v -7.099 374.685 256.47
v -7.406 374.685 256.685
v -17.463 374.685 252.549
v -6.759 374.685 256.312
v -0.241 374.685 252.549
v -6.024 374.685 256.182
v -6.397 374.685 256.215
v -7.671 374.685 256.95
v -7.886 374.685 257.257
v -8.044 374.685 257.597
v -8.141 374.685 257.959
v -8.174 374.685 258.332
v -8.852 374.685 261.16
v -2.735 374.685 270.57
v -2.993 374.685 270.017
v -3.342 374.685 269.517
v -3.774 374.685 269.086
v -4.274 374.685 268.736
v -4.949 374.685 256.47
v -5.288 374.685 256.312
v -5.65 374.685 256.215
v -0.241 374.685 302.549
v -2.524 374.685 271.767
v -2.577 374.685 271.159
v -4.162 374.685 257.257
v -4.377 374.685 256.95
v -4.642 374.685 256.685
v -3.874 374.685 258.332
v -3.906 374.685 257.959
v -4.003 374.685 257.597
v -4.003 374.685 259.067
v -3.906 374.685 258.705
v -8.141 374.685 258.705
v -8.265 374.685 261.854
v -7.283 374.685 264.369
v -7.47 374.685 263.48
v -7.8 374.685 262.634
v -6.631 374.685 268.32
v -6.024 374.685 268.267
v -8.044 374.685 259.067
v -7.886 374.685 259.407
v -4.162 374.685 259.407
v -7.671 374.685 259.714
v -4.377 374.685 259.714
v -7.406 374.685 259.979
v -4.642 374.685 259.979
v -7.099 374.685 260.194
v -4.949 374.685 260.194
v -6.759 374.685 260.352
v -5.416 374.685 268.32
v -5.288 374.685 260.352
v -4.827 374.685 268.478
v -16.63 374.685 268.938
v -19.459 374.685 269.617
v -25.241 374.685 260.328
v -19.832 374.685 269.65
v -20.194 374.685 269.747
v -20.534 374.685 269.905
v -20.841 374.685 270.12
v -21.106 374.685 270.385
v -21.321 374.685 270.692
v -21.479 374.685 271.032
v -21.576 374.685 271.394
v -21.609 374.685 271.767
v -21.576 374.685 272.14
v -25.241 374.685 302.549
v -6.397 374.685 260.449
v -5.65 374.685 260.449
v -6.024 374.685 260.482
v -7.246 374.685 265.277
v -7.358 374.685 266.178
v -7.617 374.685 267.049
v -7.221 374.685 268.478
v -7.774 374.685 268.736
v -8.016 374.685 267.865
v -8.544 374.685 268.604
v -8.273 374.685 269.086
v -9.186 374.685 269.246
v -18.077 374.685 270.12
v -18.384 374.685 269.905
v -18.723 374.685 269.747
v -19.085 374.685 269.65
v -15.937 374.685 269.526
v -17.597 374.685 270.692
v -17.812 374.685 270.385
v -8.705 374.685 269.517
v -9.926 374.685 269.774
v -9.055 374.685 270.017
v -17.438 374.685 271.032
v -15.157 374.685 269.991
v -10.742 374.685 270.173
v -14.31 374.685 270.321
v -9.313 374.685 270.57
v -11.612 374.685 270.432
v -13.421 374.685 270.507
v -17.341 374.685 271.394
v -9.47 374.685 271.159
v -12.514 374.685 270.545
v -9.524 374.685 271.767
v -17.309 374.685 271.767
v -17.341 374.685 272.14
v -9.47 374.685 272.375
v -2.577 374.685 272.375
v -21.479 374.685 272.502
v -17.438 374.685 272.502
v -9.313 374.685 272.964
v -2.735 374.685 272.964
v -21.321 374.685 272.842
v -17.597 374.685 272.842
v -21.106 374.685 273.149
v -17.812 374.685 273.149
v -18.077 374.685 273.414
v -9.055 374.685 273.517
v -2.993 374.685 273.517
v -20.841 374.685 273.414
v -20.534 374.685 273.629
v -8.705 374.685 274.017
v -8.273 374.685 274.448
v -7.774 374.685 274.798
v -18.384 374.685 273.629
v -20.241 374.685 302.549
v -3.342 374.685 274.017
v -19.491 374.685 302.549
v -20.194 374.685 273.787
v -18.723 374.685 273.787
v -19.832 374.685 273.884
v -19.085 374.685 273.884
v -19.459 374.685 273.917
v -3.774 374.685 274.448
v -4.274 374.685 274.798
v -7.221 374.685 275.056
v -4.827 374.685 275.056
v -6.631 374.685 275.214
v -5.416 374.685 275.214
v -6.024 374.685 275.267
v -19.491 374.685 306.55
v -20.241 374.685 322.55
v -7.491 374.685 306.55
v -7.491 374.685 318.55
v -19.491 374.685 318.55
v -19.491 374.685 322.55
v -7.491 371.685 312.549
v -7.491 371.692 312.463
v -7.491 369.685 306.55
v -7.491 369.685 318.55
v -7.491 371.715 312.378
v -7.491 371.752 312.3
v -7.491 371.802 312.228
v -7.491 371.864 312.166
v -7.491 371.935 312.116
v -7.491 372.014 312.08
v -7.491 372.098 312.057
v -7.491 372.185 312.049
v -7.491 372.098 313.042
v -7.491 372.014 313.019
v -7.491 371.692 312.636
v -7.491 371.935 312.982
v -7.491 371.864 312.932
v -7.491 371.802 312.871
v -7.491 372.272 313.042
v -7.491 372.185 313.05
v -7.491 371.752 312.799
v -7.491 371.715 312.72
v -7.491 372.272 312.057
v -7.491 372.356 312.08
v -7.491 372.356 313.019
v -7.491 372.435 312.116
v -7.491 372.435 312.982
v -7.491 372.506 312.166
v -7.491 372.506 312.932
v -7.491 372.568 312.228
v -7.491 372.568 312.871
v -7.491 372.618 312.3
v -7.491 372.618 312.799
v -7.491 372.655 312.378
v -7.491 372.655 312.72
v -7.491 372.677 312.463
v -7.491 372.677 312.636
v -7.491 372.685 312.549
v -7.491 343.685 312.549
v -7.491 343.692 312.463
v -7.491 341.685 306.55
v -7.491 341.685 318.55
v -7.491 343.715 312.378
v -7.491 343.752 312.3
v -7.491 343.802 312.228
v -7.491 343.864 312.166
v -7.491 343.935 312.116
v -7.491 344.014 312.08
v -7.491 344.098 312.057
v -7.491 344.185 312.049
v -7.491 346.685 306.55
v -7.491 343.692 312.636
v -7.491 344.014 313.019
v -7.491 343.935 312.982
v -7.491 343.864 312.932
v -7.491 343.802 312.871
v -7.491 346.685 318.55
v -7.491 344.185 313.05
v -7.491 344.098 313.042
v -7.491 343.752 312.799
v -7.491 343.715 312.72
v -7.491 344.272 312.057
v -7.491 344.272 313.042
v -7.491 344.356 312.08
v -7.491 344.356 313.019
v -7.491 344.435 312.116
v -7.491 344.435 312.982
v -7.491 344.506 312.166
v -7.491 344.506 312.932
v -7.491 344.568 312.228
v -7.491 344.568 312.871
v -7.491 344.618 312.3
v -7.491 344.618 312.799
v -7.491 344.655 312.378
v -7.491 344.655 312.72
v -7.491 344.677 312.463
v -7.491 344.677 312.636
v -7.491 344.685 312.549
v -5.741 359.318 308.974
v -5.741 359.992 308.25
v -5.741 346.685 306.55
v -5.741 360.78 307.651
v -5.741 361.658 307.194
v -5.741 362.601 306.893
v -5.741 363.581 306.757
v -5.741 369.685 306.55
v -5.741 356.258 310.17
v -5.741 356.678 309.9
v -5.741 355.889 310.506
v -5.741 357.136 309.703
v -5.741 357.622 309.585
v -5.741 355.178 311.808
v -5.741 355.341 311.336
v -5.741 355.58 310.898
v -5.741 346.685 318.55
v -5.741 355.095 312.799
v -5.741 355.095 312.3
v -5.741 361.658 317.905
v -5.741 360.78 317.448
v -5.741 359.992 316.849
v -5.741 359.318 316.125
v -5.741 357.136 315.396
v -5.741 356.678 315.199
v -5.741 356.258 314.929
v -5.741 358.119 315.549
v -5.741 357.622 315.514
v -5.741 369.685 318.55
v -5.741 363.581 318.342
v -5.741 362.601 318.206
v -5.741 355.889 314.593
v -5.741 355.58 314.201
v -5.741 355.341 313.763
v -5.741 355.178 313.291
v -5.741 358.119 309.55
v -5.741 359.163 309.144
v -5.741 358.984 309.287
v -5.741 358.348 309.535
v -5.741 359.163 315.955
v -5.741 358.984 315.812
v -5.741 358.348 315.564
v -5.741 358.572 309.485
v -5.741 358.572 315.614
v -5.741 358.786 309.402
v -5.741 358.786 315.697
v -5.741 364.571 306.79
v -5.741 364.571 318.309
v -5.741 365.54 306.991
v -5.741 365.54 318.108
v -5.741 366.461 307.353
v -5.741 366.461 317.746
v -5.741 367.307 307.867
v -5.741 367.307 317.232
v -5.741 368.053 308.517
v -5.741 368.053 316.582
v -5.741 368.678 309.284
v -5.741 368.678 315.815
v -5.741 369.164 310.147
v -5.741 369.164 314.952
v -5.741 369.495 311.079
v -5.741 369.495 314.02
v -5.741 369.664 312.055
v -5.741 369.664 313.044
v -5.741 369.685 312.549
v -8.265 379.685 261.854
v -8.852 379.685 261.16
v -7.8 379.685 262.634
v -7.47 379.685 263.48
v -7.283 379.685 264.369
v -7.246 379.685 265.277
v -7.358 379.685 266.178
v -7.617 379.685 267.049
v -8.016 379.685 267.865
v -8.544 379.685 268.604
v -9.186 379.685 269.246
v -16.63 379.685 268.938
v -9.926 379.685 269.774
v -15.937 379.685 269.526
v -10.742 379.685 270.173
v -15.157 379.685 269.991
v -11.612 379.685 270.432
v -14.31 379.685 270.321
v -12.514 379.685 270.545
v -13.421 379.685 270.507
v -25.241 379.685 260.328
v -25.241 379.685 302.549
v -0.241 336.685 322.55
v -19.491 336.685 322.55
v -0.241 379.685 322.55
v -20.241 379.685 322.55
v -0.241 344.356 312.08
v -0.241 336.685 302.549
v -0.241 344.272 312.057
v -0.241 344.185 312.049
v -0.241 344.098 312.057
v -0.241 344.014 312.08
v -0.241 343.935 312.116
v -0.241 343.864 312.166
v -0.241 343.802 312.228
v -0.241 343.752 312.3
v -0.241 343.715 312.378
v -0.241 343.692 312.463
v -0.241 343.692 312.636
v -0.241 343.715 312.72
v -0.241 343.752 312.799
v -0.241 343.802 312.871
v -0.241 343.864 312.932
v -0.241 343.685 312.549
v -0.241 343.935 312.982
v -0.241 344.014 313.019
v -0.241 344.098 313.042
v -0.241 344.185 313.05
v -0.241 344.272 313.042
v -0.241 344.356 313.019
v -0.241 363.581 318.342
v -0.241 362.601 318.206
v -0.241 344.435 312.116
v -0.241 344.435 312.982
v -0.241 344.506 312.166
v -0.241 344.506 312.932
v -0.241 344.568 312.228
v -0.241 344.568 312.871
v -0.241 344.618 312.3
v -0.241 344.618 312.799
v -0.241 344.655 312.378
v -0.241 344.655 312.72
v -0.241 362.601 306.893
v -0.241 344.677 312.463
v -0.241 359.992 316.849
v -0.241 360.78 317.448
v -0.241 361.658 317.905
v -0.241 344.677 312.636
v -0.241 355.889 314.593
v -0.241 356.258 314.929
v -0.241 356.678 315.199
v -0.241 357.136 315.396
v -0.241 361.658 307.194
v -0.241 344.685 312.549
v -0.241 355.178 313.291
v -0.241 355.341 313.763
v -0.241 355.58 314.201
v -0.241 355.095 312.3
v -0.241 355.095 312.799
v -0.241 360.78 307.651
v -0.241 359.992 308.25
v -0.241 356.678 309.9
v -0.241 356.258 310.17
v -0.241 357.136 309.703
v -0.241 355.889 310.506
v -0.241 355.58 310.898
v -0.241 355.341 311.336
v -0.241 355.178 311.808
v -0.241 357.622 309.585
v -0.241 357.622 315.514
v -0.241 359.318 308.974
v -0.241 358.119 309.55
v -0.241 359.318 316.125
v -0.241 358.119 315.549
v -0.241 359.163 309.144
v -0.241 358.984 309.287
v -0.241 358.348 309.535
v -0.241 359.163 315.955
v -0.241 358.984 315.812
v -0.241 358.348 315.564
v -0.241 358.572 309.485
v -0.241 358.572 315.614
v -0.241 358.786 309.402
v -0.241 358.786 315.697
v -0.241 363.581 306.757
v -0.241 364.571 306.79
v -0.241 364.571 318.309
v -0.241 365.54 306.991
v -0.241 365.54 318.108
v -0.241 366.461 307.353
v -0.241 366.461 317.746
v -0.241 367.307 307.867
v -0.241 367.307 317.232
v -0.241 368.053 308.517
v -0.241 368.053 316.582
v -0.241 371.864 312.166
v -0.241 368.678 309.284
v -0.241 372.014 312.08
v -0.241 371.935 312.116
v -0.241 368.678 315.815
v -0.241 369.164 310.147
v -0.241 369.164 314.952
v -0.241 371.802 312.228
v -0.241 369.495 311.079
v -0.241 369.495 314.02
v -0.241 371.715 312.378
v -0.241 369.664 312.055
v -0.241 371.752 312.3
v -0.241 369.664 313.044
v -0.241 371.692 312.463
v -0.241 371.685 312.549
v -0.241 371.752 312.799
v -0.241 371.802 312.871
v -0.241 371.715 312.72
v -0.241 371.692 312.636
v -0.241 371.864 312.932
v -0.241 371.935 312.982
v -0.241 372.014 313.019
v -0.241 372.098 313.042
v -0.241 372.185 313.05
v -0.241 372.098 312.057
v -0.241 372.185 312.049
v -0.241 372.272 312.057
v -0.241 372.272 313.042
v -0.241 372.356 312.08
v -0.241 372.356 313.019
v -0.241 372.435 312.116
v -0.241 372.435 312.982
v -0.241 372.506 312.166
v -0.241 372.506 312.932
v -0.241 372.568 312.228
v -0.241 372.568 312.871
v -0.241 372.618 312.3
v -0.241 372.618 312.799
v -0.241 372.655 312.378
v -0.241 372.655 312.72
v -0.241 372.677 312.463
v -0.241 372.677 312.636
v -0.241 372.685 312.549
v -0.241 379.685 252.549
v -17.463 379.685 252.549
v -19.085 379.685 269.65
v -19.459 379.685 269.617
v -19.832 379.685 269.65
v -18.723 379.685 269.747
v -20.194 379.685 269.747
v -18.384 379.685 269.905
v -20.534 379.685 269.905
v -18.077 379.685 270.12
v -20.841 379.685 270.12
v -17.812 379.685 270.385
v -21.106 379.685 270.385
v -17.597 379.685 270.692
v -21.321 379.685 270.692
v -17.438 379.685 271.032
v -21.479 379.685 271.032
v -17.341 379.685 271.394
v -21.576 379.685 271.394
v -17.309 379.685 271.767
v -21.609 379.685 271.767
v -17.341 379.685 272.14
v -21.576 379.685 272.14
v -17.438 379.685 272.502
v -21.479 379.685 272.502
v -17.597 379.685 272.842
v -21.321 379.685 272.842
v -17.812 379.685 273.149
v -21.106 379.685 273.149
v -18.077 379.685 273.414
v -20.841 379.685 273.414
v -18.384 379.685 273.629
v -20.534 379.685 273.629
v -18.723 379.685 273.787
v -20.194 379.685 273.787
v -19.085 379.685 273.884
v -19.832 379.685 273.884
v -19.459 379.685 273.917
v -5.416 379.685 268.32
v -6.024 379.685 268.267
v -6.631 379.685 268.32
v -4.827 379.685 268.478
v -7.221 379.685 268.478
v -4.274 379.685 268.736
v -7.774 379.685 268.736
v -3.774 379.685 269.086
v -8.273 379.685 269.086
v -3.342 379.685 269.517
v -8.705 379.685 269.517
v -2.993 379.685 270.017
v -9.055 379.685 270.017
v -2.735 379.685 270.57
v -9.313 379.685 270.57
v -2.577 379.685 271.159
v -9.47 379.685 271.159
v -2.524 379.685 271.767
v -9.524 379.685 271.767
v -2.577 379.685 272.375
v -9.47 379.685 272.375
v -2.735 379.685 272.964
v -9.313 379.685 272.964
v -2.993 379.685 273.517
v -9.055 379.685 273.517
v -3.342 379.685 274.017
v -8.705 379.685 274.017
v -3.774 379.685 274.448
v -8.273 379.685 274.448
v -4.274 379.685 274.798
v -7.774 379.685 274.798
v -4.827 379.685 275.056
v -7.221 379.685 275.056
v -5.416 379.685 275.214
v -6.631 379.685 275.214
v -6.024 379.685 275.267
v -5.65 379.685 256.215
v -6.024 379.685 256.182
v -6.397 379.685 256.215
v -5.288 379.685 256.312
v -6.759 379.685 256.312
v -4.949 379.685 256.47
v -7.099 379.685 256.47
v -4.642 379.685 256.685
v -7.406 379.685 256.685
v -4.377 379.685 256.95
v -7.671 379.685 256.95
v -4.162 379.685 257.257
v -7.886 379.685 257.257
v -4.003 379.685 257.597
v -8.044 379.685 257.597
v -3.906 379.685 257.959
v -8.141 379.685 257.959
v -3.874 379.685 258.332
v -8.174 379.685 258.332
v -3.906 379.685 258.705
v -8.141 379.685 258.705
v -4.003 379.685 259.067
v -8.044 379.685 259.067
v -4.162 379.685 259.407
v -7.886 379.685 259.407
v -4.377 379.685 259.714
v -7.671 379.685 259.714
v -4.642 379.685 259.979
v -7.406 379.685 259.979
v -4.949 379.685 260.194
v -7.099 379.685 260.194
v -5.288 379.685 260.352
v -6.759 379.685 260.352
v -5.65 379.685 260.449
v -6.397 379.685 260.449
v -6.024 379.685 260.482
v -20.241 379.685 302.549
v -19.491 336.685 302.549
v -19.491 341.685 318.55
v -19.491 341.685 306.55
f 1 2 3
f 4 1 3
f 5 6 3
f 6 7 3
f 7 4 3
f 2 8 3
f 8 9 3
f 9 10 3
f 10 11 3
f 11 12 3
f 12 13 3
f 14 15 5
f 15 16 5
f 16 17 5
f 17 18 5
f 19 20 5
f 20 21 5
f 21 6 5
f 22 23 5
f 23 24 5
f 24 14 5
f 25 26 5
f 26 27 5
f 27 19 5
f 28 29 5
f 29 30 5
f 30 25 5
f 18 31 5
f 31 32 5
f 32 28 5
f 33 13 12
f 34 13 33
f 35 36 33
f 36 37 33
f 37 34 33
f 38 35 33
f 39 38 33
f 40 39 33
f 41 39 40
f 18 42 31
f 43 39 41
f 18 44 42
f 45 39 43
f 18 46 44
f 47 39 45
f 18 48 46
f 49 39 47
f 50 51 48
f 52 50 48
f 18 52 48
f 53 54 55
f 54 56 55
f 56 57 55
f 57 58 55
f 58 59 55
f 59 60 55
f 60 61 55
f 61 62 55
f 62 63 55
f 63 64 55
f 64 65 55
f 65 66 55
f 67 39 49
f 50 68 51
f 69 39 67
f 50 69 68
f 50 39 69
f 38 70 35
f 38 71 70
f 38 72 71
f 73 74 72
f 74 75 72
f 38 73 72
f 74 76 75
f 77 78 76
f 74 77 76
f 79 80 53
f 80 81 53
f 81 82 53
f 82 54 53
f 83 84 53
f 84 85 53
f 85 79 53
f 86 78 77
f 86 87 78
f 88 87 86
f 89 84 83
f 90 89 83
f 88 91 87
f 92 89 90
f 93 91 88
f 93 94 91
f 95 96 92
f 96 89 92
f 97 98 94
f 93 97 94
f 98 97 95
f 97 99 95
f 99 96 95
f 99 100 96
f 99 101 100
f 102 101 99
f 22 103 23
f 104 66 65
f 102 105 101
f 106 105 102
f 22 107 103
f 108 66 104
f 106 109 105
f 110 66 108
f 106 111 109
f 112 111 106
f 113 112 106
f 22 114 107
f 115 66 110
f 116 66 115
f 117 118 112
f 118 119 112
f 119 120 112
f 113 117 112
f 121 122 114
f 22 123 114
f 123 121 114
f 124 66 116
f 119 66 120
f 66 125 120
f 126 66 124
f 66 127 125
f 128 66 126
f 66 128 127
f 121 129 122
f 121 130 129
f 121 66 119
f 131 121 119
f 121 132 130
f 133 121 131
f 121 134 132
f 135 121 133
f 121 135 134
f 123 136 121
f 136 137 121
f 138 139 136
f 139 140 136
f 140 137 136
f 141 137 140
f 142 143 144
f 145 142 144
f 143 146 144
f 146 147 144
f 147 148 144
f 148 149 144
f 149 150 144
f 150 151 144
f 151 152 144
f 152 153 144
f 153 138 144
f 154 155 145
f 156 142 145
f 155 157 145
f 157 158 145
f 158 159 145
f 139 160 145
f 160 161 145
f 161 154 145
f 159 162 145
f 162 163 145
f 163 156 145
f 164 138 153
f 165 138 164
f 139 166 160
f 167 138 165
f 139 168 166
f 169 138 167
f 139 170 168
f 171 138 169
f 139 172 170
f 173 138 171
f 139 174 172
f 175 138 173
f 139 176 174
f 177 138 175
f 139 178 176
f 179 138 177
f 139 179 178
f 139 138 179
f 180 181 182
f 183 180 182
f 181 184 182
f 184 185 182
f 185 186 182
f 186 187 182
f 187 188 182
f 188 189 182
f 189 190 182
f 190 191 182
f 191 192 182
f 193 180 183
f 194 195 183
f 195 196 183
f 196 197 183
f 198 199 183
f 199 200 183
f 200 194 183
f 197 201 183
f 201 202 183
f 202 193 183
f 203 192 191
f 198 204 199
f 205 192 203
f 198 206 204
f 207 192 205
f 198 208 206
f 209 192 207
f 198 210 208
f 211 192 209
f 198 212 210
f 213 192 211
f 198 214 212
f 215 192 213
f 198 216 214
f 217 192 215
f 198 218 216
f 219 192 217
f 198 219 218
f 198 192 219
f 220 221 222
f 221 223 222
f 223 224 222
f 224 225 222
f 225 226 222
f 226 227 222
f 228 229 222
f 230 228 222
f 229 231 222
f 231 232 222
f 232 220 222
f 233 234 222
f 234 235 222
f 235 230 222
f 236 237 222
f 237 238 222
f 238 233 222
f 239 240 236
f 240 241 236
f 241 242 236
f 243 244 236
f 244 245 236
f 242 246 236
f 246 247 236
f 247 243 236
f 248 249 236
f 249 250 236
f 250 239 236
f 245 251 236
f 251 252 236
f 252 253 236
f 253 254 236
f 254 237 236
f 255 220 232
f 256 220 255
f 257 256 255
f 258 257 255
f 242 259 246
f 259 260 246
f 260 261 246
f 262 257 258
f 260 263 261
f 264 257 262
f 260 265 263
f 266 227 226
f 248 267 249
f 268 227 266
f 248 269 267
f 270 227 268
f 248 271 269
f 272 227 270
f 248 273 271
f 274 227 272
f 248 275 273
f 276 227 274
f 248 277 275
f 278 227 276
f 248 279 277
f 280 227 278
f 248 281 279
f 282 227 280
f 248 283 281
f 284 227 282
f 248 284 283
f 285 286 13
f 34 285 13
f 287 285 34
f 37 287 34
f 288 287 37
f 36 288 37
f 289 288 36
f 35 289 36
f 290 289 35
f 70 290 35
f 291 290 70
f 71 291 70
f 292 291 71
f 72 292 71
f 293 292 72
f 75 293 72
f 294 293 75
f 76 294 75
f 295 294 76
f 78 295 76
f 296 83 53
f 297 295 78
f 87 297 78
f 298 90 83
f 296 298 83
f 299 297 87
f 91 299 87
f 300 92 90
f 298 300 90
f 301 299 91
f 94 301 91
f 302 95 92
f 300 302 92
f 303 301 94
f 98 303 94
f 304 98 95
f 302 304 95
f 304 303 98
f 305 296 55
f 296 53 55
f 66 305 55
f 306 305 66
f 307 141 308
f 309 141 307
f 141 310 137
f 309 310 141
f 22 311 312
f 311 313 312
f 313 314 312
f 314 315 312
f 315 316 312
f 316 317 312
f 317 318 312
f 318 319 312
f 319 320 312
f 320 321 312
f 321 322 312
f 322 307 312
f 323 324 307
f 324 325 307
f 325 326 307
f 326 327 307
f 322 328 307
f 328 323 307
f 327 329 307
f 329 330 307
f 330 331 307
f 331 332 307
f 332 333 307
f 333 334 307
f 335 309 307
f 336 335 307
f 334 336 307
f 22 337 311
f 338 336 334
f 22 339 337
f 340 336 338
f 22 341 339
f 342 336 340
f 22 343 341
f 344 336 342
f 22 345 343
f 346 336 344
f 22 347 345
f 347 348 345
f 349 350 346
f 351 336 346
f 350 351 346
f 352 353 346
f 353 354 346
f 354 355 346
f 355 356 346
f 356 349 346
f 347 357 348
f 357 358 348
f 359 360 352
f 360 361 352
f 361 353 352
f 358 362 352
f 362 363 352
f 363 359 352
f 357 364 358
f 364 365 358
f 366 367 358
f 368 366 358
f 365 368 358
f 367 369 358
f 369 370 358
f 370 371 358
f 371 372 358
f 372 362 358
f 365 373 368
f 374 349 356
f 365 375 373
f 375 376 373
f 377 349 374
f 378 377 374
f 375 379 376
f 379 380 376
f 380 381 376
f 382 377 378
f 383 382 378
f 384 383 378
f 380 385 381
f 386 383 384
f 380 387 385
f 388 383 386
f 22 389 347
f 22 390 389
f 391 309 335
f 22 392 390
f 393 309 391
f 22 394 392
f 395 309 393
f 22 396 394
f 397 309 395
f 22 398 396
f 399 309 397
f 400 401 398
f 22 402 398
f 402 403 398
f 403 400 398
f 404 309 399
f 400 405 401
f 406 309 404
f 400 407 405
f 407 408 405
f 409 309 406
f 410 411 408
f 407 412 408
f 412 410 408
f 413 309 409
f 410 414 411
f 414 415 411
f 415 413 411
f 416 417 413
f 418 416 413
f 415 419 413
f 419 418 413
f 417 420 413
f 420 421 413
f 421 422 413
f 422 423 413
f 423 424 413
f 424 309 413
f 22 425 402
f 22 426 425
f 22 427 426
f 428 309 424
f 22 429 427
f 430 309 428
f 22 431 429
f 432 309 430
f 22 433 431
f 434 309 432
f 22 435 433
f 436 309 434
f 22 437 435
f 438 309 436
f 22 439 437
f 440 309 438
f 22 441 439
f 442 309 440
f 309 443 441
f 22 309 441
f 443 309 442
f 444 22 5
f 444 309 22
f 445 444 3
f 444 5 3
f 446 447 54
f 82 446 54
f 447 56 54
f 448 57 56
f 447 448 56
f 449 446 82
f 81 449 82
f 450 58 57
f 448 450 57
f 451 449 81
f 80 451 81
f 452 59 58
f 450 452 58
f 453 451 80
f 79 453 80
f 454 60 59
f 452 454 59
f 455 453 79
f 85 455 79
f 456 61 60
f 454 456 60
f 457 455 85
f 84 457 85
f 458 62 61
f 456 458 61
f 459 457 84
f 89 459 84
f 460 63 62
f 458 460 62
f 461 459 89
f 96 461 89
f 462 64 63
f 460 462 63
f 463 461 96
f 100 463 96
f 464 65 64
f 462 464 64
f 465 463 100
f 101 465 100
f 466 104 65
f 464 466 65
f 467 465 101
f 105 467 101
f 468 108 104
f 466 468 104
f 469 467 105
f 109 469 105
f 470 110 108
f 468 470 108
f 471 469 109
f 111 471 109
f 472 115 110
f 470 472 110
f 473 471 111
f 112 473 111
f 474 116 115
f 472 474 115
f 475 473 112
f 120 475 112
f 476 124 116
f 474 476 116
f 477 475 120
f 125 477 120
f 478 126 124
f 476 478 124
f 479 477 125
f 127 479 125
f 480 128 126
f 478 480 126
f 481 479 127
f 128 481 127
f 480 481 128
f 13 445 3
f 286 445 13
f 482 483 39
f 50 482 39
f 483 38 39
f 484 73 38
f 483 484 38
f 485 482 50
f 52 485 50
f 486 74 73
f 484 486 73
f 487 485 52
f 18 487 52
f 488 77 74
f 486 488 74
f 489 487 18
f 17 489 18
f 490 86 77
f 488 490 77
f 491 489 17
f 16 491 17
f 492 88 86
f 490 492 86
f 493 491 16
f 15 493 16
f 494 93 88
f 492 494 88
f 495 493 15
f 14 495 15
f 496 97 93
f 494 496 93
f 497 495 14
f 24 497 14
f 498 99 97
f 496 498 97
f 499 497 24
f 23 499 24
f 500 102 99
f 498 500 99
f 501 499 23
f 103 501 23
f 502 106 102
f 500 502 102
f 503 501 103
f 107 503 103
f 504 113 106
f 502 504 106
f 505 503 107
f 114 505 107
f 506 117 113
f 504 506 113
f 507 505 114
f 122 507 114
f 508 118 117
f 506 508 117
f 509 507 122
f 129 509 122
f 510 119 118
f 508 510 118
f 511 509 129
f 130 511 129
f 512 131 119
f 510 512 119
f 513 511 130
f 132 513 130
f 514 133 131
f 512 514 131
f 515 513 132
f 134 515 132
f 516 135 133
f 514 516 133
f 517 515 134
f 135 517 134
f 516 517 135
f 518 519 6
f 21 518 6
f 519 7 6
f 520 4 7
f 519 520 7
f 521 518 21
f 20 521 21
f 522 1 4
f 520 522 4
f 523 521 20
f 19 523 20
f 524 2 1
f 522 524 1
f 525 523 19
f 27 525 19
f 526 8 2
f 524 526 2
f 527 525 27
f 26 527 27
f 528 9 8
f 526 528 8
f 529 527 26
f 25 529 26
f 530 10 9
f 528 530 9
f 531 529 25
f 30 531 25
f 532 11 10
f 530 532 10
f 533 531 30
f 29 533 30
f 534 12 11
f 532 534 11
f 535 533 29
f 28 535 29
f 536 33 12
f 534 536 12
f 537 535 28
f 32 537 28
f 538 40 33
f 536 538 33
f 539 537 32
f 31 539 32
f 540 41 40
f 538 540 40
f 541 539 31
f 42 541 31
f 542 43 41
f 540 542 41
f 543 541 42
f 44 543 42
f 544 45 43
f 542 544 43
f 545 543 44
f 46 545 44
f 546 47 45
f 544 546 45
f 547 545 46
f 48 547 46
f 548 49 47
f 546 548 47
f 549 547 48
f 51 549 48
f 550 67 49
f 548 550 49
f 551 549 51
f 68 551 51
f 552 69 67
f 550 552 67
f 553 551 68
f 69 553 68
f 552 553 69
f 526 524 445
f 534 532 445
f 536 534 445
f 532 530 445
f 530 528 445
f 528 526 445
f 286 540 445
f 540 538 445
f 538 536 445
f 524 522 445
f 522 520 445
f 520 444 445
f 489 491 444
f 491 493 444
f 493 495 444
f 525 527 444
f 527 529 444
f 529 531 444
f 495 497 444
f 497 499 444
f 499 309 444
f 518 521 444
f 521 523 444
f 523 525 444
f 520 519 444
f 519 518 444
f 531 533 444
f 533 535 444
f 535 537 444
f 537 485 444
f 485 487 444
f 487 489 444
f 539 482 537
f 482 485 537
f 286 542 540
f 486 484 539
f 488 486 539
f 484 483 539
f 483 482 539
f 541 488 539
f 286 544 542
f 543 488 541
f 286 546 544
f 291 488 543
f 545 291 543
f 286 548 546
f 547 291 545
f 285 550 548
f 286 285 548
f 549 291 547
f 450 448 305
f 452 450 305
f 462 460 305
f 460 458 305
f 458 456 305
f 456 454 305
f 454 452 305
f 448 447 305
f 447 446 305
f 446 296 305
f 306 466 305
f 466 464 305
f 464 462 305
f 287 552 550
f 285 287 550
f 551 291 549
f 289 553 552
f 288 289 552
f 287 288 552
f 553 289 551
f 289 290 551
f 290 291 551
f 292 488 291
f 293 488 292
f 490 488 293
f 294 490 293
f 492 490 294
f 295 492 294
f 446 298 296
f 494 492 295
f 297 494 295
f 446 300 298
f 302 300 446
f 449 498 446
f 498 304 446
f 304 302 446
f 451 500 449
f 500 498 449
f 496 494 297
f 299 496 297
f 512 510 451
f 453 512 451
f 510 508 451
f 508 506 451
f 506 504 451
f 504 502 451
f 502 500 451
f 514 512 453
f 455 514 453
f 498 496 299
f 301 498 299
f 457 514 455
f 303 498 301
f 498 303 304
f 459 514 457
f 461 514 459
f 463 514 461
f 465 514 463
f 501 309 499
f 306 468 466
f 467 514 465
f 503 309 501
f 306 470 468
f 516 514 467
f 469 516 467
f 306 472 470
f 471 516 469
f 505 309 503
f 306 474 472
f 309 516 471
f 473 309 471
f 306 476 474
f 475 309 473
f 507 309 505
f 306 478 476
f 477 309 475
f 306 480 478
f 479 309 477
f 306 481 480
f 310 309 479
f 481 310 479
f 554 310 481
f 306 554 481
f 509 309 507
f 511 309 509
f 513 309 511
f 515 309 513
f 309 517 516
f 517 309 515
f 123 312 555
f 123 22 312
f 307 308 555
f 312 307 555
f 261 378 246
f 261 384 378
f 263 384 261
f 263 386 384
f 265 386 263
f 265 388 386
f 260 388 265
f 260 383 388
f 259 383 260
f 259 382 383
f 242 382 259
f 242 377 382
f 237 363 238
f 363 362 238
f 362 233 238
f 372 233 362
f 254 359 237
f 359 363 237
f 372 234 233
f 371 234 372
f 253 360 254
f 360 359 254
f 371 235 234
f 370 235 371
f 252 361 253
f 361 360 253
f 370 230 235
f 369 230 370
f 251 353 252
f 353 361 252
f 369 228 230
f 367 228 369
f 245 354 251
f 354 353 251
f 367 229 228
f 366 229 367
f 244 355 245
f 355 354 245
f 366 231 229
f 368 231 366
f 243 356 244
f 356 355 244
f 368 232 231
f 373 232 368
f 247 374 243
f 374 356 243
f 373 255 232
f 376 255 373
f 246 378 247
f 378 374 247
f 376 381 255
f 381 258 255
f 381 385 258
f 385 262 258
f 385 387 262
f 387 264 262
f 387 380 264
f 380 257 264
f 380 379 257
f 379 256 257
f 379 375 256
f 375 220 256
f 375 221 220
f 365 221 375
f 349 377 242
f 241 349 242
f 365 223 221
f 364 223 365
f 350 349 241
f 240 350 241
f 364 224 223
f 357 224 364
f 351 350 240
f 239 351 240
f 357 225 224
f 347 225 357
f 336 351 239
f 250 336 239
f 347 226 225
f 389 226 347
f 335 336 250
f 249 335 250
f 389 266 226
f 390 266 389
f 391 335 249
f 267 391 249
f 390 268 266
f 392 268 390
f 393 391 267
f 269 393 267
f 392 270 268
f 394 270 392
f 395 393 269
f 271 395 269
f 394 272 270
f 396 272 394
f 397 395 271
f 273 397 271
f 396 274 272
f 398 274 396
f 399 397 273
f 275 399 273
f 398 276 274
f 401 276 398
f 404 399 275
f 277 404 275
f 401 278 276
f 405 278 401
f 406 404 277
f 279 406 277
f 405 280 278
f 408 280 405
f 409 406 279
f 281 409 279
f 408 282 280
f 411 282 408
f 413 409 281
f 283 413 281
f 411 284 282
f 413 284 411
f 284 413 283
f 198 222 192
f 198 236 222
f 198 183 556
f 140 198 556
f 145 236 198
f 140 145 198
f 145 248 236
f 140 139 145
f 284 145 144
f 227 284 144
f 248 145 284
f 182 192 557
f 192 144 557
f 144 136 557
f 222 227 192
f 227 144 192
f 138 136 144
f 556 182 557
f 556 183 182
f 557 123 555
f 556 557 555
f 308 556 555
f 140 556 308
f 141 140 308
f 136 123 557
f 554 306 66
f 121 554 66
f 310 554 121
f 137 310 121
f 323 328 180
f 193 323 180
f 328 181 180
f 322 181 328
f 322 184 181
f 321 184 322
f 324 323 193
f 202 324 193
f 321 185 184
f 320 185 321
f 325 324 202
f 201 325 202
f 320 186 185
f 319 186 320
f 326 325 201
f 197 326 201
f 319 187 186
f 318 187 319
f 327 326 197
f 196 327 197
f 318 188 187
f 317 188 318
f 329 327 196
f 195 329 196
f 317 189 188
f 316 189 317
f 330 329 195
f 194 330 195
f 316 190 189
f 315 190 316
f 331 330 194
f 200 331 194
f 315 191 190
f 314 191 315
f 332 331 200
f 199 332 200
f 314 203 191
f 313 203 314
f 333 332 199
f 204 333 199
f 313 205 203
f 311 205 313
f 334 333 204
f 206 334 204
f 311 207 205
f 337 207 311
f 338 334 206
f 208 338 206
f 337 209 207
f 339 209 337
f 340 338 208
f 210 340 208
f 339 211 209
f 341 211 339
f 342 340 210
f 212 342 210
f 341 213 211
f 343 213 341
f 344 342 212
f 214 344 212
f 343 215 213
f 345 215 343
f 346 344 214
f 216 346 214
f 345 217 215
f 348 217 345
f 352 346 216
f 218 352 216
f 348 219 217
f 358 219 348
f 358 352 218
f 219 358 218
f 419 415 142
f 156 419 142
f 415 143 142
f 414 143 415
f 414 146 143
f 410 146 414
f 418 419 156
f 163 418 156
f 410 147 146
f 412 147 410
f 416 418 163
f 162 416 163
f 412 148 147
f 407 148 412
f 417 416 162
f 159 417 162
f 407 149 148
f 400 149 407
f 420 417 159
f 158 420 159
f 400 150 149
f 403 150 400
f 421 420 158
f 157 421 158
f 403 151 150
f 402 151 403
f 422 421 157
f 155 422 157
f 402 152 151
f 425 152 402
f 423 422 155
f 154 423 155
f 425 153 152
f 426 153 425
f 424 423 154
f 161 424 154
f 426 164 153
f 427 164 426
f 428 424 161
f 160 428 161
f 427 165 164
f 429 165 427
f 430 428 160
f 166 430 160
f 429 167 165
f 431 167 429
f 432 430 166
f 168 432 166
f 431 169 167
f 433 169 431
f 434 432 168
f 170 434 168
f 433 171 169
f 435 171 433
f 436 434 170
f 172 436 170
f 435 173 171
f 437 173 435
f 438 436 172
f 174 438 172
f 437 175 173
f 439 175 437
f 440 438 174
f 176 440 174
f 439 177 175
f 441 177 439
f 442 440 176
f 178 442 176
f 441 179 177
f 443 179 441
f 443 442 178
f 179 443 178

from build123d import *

# Parameters (mm, degrees)
SKETCH1_R               = 2.15
BOSS_EXTRUDE1_DEPTH     = 5
SKETCH2_W               = 20
SKETCH2_H               = 38
BOSS_EXTRUDE2_DEPTH     = 5.5
BOSS_EXTRUDE3_START     = -5.5
SKETCH2_3_W             = 12
SKETCH2_3_H             = 5
BOSS_EXTRUDE3_DEPTH     = 1.75
BOSS_EXTRUDE4_START     = -7.25
BOSS_EXTRUDE4_DEPTH     = 12
CUT_EXTRUDE1_DEPTH      = 327.38055291
CUT_EXTRUDE1_DEPTH_BACK = 327.38055291
SKETCH3_W               = 5
SKETCH3_H               = 20
CUT_EXTRUDE2_DEPTH      = 499.511572812
CUT_EXTRUDE2_DEPTH_BACK = 499.511572812
SKETCH4_R               = 0.5


with BuildPart() as part:
    # Sketch1 → Boss-Extrude1 (new body)
    # profile 1 of 2: a face of its own
    with BuildSketch(Plane(origin=(0, 374.684836729, 0), x_dir=(1, 0, 0), z_dir=(0, 1, 0))):
        with BuildLine():
            Line((-17.462959124, -252.549454326), (-16.552371089, -253.460042361))
            ThreePointArc((-16.552371089, -253.460042361), (-5.587711318, -255.166714424), (-0.541133717, -265.049454326))
            ThreePointArc((-0.541133717, -265.049454326), (-1.047348087, -268.52729527), (-2.52398251, -271.716524237))
            ThreePointArc((-2.52398251, -271.716524237), (-2.523709833, -271.741746877), (-2.523618939, -271.766970826))
            ThreePointArc((-2.523618939, -271.766970826), (-3.566645822, -274.25961663), (-6.074066426, -275.266607243))
            ThreePointArc((-6.074066426, -275.266607243), (-20.174592051, -274.723321041), (-24.330545682, -261.238216954))
            Line((-24.330545682, -261.238216954), (-25.241133717, -260.327628919))
            Line((-25.241133717, -260.327628919), (-25.241133717, -322.549454326))
            Line((-25.241133717, -322.549454326), (-0.241133717, -322.549454326))
            Line((-0.241133717, -322.549454326), (-0.241133717, -252.549454326))
            Line((-0.241133717, -252.549454326), (-17.462959124, -252.549454326))
        make_face()
    # profile 2 of 2: a face of its own
    with BuildSketch(Plane(origin=(0, 374.684836729, 0), x_dir=(1, 0, 0), z_dir=(0, 1, 0))):
        with BuildLine():
            Line((-16.552371089, -253.460042361), (-8.852046421, -261.16036703))
            ThreePointArc((-8.852046421, -261.16036703), (-7.659796289, -262.944695448), (-7.241133717, -265.049454326))
            ThreePointArc((-7.241133717, -265.049454326), (-10.636374839, -270.130791755), (-16.630221014, -268.938541623))
            Line((-16.630221014, -268.938541623), (-24.330545682, -261.238216954))
            ThreePointArc((-24.330545682, -261.238216954), (-20.174592051, -274.723321041), (-6.074066426, -275.266607243))
            ThreePointArc((-6.074066426, -275.266607243), (-8.498492356, -269.292096775), (-2.52398251, -271.716524237))
            ThreePointArc((-2.52398251, -271.716524237), (-1.047348087, -268.52729527), (-0.541133717, -265.049454326))
            ThreePointArc((-0.541133717, -265.049454326), (-5.587711318, -255.166714424), (-16.552371089, -253.460042361))
        make_face()
        with Locations(Location((-19.458649, -271.766967887, 0), (0, 0, 270))):
            Circle(SKETCH1_R, mode=Mode.SUBTRACT)
        with Locations(Location((-6.023618435, -258.331940766, 0), (0, 0, 270))):
            Circle(SKETCH1_R, mode=Mode.SUBTRACT)
    extrude(amount=BOSS_EXTRUDE1_DEPTH)

    # Sketch2 → Boss-Extrude2 (add)
    with BuildSketch(Plane(origin=(-0.241133717, 0, 0), x_dir=(0, 0, -1), z_dir=(1, 0, 0))):
        with Locations((-312.549454326, 355.684836729)):
            Rectangle(SKETCH2_W, SKETCH2_H)
        with BuildLine():
            ThreePointArc((-308.974348052, 359.317713441), (-309.402003012, 358.785726579), (-309.54965251, 358.119319487))
            ThreePointArc((-309.54965251, 358.119319487), (-312.549454326, 355.084836729), (-315.549256143, 358.119319487))
            ThreePointArc((-315.549256143, 358.119319487), (-315.696905641, 358.785726579), (-316.124560601, 359.317713441))
            ThreePointArc((-316.124560601, 359.317713441), (-312.549454326, 369.684836729), (-308.974348052, 359.317713441))
        make_face(mode=Mode.SUBTRACT)
    extrude(amount=-BOSS_EXTRUDE2_DEPTH)

    # Sketch2<3> → Boss-Extrude3 (add)
    with BuildSketch(Plane(origin=(-0.241133717, 0, 0), x_dir=(0, 0, -1), z_dir=(1, 0, 0)).offset(BOSS_EXTRUDE3_START)):
        Polygon((-318.549454326, 374.684836729), (-322.549454326, 374.684836729), (-322.549454326, 336.684836729), (-302.549454326, 336.684836729), (-302.549454326, 374.684836729), (-306.549454326, 374.684836729), (-306.549454326, 369.684836729), (-306.549454326, 346.684836729), (-306.549454326, 341.684836729), (-318.549454326, 341.684836729), (-318.549454326, 346.684836729), (-318.549454326, 369.684836729), align=None)
        with Locations((-312.549454326, 344.184836729)):
            Rectangle(SKETCH2_3_W, SKETCH2_3_H)
        Polygon((-306.549454326, 374.684836729), (-318.549454326, 374.684836729), (-318.549454326, 369.684836729), (-312.549454326, 369.684836729), (-306.549454326, 369.684836729), align=None)
    extrude(amount=-BOSS_EXTRUDE3_DEPTH)

    # Sketch2<4> → Boss-Extrude4 (add)
    with BuildSketch(Plane(origin=(-0.241133717, 0, 0), x_dir=(0, 0, -1), z_dir=(1, 0, 0)).offset(BOSS_EXTRUDE4_START)):
        Polygon((-318.549454326, 374.684836729), (-322.549454326, 374.684836729), (-322.549454326, 336.684836729), (-302.549454326, 336.684836729), (-302.549454326, 374.684836729), (-306.549454326, 374.684836729), (-306.549454326, 369.684836729), (-306.549454326, 346.684836729), (-306.549454326, 341.684836729), (-318.549454326, 341.684836729), (-318.549454326, 346.684836729), (-318.549454326, 369.684836729), align=None)
    extrude(amount=-BOSS_EXTRUDE4_DEPTH)

    # Sketch3 → Cut-Extrude1 (cut, two sides: drawn at the far end of the back side and taken through both)
    with BuildSketch(Plane(origin=(0, 379.684836729, 0), x_dir=(1, 0, 0), z_dir=(0, 1, 0)).offset(-CUT_EXTRUDE1_DEPTH_BACK)):
        with Locations((-22.741133717, -312.549454326)):
            Rectangle(SKETCH3_W, SKETCH3_H)
    extrude(amount=CUT_EXTRUDE1_DEPTH + CUT_EXTRUDE1_DEPTH_BACK, mode=Mode.SUBTRACT)

    # Sketch4 → Cut-Extrude2 (cut, two sides: drawn at the far end of the back side and taken through both)
    with BuildSketch(Plane.ZY.offset(7.491133717).offset(-CUT_EXTRUDE2_DEPTH_BACK)):
        with Locations(Location((312.549454326, 372.184836729, 0), (0, 0, 270))):
            Circle(SKETCH4_R)
        with Locations(Location((312.549454326, 344.184836729, 0), (0, 0, 270))):
            Circle(SKETCH4_R)
    extrude(amount=CUT_EXTRUDE2_DEPTH + CUT_EXTRUDE2_DEPTH_BACK, mode=Mode.SUBTRACT)


solid = part.part
